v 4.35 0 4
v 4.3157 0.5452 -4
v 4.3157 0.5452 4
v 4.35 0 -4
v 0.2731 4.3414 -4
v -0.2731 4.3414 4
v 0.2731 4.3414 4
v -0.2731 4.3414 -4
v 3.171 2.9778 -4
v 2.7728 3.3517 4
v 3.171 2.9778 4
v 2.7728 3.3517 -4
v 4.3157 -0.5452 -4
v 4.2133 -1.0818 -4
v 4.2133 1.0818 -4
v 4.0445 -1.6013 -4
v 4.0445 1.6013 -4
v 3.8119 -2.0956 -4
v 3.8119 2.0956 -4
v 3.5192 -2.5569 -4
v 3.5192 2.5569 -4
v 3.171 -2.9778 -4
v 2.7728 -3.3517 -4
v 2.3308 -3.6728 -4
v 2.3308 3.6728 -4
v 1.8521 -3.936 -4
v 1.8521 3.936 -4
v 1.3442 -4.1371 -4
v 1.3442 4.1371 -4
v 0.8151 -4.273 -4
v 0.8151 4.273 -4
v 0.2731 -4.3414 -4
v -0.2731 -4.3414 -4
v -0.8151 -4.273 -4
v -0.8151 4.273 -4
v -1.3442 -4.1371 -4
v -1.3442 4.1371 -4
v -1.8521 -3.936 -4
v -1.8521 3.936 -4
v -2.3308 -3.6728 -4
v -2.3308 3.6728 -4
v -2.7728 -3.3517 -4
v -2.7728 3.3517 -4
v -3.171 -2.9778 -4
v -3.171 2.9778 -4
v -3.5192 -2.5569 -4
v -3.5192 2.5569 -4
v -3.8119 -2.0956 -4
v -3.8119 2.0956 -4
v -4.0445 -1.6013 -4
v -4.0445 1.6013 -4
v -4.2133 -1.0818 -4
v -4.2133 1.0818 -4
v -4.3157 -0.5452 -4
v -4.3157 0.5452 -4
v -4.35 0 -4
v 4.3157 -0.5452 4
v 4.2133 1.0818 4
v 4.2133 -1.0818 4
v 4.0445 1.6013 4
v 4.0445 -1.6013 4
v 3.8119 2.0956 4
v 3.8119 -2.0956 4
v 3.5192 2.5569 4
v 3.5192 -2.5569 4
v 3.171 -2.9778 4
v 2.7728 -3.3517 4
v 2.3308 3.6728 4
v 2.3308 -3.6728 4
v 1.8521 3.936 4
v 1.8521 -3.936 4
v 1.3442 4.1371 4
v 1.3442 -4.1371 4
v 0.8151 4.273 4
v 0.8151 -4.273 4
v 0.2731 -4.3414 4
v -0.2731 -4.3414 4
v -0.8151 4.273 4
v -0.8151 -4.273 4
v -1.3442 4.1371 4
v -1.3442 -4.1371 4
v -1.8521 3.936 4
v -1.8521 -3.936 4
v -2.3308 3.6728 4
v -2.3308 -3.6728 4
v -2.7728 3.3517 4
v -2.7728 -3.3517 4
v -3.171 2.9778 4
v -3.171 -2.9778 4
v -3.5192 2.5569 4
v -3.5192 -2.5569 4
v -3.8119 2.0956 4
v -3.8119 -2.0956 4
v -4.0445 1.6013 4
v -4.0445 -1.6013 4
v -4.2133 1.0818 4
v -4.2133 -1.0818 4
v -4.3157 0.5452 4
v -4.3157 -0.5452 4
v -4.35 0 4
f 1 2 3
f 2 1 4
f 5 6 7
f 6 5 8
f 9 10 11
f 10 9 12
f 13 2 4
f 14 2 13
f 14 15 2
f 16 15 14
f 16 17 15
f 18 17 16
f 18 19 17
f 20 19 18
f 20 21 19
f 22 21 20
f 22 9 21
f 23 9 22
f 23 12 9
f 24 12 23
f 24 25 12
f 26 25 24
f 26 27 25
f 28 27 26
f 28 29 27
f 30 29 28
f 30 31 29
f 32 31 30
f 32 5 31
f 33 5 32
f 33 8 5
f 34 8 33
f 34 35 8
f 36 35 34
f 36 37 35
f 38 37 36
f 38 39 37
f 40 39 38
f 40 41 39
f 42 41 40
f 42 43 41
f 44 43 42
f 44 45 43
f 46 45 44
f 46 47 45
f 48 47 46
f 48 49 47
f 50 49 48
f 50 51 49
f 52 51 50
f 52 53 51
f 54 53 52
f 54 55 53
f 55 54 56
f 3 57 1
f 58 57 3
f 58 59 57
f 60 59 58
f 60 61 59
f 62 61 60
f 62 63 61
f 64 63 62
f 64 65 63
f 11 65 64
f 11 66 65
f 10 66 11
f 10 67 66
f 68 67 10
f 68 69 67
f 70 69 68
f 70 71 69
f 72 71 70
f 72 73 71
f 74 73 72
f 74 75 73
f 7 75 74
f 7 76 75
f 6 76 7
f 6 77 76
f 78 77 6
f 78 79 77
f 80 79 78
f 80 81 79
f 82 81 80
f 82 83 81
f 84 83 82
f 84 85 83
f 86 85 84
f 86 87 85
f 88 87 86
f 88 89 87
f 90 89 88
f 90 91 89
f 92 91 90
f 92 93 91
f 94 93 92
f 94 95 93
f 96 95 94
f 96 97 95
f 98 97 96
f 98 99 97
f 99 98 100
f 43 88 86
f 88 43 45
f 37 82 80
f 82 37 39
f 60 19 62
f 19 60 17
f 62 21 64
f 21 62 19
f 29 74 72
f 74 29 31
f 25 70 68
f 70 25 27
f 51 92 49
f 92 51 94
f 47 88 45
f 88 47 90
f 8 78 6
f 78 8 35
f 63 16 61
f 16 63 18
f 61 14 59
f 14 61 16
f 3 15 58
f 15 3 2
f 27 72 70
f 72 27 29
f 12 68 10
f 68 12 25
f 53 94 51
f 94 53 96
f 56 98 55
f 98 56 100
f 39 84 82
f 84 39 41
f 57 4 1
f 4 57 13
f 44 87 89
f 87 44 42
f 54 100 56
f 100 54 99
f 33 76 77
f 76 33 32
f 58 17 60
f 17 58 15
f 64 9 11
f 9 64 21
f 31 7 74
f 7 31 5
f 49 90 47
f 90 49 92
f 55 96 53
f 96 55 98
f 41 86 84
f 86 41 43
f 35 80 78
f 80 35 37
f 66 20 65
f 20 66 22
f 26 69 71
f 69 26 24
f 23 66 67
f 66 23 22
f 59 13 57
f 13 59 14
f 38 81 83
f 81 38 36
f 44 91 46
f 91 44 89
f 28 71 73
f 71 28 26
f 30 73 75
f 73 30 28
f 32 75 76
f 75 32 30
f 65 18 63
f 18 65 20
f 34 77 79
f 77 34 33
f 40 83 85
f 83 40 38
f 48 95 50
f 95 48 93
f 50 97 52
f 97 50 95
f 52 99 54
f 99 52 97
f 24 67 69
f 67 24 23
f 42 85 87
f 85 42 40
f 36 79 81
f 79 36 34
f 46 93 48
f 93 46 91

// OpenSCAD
$fn = 50;


difference() {
	union() {
		translate(v = [0, 0, -4.0000000000]) {
			cylinder(h = 8, r = 4.3500000000);
		}
	}
	union() {
		translate(v = [0, 0, -100.0000000000]) {
			cylinder(h = 200, r = 0);
		}
	}
}
